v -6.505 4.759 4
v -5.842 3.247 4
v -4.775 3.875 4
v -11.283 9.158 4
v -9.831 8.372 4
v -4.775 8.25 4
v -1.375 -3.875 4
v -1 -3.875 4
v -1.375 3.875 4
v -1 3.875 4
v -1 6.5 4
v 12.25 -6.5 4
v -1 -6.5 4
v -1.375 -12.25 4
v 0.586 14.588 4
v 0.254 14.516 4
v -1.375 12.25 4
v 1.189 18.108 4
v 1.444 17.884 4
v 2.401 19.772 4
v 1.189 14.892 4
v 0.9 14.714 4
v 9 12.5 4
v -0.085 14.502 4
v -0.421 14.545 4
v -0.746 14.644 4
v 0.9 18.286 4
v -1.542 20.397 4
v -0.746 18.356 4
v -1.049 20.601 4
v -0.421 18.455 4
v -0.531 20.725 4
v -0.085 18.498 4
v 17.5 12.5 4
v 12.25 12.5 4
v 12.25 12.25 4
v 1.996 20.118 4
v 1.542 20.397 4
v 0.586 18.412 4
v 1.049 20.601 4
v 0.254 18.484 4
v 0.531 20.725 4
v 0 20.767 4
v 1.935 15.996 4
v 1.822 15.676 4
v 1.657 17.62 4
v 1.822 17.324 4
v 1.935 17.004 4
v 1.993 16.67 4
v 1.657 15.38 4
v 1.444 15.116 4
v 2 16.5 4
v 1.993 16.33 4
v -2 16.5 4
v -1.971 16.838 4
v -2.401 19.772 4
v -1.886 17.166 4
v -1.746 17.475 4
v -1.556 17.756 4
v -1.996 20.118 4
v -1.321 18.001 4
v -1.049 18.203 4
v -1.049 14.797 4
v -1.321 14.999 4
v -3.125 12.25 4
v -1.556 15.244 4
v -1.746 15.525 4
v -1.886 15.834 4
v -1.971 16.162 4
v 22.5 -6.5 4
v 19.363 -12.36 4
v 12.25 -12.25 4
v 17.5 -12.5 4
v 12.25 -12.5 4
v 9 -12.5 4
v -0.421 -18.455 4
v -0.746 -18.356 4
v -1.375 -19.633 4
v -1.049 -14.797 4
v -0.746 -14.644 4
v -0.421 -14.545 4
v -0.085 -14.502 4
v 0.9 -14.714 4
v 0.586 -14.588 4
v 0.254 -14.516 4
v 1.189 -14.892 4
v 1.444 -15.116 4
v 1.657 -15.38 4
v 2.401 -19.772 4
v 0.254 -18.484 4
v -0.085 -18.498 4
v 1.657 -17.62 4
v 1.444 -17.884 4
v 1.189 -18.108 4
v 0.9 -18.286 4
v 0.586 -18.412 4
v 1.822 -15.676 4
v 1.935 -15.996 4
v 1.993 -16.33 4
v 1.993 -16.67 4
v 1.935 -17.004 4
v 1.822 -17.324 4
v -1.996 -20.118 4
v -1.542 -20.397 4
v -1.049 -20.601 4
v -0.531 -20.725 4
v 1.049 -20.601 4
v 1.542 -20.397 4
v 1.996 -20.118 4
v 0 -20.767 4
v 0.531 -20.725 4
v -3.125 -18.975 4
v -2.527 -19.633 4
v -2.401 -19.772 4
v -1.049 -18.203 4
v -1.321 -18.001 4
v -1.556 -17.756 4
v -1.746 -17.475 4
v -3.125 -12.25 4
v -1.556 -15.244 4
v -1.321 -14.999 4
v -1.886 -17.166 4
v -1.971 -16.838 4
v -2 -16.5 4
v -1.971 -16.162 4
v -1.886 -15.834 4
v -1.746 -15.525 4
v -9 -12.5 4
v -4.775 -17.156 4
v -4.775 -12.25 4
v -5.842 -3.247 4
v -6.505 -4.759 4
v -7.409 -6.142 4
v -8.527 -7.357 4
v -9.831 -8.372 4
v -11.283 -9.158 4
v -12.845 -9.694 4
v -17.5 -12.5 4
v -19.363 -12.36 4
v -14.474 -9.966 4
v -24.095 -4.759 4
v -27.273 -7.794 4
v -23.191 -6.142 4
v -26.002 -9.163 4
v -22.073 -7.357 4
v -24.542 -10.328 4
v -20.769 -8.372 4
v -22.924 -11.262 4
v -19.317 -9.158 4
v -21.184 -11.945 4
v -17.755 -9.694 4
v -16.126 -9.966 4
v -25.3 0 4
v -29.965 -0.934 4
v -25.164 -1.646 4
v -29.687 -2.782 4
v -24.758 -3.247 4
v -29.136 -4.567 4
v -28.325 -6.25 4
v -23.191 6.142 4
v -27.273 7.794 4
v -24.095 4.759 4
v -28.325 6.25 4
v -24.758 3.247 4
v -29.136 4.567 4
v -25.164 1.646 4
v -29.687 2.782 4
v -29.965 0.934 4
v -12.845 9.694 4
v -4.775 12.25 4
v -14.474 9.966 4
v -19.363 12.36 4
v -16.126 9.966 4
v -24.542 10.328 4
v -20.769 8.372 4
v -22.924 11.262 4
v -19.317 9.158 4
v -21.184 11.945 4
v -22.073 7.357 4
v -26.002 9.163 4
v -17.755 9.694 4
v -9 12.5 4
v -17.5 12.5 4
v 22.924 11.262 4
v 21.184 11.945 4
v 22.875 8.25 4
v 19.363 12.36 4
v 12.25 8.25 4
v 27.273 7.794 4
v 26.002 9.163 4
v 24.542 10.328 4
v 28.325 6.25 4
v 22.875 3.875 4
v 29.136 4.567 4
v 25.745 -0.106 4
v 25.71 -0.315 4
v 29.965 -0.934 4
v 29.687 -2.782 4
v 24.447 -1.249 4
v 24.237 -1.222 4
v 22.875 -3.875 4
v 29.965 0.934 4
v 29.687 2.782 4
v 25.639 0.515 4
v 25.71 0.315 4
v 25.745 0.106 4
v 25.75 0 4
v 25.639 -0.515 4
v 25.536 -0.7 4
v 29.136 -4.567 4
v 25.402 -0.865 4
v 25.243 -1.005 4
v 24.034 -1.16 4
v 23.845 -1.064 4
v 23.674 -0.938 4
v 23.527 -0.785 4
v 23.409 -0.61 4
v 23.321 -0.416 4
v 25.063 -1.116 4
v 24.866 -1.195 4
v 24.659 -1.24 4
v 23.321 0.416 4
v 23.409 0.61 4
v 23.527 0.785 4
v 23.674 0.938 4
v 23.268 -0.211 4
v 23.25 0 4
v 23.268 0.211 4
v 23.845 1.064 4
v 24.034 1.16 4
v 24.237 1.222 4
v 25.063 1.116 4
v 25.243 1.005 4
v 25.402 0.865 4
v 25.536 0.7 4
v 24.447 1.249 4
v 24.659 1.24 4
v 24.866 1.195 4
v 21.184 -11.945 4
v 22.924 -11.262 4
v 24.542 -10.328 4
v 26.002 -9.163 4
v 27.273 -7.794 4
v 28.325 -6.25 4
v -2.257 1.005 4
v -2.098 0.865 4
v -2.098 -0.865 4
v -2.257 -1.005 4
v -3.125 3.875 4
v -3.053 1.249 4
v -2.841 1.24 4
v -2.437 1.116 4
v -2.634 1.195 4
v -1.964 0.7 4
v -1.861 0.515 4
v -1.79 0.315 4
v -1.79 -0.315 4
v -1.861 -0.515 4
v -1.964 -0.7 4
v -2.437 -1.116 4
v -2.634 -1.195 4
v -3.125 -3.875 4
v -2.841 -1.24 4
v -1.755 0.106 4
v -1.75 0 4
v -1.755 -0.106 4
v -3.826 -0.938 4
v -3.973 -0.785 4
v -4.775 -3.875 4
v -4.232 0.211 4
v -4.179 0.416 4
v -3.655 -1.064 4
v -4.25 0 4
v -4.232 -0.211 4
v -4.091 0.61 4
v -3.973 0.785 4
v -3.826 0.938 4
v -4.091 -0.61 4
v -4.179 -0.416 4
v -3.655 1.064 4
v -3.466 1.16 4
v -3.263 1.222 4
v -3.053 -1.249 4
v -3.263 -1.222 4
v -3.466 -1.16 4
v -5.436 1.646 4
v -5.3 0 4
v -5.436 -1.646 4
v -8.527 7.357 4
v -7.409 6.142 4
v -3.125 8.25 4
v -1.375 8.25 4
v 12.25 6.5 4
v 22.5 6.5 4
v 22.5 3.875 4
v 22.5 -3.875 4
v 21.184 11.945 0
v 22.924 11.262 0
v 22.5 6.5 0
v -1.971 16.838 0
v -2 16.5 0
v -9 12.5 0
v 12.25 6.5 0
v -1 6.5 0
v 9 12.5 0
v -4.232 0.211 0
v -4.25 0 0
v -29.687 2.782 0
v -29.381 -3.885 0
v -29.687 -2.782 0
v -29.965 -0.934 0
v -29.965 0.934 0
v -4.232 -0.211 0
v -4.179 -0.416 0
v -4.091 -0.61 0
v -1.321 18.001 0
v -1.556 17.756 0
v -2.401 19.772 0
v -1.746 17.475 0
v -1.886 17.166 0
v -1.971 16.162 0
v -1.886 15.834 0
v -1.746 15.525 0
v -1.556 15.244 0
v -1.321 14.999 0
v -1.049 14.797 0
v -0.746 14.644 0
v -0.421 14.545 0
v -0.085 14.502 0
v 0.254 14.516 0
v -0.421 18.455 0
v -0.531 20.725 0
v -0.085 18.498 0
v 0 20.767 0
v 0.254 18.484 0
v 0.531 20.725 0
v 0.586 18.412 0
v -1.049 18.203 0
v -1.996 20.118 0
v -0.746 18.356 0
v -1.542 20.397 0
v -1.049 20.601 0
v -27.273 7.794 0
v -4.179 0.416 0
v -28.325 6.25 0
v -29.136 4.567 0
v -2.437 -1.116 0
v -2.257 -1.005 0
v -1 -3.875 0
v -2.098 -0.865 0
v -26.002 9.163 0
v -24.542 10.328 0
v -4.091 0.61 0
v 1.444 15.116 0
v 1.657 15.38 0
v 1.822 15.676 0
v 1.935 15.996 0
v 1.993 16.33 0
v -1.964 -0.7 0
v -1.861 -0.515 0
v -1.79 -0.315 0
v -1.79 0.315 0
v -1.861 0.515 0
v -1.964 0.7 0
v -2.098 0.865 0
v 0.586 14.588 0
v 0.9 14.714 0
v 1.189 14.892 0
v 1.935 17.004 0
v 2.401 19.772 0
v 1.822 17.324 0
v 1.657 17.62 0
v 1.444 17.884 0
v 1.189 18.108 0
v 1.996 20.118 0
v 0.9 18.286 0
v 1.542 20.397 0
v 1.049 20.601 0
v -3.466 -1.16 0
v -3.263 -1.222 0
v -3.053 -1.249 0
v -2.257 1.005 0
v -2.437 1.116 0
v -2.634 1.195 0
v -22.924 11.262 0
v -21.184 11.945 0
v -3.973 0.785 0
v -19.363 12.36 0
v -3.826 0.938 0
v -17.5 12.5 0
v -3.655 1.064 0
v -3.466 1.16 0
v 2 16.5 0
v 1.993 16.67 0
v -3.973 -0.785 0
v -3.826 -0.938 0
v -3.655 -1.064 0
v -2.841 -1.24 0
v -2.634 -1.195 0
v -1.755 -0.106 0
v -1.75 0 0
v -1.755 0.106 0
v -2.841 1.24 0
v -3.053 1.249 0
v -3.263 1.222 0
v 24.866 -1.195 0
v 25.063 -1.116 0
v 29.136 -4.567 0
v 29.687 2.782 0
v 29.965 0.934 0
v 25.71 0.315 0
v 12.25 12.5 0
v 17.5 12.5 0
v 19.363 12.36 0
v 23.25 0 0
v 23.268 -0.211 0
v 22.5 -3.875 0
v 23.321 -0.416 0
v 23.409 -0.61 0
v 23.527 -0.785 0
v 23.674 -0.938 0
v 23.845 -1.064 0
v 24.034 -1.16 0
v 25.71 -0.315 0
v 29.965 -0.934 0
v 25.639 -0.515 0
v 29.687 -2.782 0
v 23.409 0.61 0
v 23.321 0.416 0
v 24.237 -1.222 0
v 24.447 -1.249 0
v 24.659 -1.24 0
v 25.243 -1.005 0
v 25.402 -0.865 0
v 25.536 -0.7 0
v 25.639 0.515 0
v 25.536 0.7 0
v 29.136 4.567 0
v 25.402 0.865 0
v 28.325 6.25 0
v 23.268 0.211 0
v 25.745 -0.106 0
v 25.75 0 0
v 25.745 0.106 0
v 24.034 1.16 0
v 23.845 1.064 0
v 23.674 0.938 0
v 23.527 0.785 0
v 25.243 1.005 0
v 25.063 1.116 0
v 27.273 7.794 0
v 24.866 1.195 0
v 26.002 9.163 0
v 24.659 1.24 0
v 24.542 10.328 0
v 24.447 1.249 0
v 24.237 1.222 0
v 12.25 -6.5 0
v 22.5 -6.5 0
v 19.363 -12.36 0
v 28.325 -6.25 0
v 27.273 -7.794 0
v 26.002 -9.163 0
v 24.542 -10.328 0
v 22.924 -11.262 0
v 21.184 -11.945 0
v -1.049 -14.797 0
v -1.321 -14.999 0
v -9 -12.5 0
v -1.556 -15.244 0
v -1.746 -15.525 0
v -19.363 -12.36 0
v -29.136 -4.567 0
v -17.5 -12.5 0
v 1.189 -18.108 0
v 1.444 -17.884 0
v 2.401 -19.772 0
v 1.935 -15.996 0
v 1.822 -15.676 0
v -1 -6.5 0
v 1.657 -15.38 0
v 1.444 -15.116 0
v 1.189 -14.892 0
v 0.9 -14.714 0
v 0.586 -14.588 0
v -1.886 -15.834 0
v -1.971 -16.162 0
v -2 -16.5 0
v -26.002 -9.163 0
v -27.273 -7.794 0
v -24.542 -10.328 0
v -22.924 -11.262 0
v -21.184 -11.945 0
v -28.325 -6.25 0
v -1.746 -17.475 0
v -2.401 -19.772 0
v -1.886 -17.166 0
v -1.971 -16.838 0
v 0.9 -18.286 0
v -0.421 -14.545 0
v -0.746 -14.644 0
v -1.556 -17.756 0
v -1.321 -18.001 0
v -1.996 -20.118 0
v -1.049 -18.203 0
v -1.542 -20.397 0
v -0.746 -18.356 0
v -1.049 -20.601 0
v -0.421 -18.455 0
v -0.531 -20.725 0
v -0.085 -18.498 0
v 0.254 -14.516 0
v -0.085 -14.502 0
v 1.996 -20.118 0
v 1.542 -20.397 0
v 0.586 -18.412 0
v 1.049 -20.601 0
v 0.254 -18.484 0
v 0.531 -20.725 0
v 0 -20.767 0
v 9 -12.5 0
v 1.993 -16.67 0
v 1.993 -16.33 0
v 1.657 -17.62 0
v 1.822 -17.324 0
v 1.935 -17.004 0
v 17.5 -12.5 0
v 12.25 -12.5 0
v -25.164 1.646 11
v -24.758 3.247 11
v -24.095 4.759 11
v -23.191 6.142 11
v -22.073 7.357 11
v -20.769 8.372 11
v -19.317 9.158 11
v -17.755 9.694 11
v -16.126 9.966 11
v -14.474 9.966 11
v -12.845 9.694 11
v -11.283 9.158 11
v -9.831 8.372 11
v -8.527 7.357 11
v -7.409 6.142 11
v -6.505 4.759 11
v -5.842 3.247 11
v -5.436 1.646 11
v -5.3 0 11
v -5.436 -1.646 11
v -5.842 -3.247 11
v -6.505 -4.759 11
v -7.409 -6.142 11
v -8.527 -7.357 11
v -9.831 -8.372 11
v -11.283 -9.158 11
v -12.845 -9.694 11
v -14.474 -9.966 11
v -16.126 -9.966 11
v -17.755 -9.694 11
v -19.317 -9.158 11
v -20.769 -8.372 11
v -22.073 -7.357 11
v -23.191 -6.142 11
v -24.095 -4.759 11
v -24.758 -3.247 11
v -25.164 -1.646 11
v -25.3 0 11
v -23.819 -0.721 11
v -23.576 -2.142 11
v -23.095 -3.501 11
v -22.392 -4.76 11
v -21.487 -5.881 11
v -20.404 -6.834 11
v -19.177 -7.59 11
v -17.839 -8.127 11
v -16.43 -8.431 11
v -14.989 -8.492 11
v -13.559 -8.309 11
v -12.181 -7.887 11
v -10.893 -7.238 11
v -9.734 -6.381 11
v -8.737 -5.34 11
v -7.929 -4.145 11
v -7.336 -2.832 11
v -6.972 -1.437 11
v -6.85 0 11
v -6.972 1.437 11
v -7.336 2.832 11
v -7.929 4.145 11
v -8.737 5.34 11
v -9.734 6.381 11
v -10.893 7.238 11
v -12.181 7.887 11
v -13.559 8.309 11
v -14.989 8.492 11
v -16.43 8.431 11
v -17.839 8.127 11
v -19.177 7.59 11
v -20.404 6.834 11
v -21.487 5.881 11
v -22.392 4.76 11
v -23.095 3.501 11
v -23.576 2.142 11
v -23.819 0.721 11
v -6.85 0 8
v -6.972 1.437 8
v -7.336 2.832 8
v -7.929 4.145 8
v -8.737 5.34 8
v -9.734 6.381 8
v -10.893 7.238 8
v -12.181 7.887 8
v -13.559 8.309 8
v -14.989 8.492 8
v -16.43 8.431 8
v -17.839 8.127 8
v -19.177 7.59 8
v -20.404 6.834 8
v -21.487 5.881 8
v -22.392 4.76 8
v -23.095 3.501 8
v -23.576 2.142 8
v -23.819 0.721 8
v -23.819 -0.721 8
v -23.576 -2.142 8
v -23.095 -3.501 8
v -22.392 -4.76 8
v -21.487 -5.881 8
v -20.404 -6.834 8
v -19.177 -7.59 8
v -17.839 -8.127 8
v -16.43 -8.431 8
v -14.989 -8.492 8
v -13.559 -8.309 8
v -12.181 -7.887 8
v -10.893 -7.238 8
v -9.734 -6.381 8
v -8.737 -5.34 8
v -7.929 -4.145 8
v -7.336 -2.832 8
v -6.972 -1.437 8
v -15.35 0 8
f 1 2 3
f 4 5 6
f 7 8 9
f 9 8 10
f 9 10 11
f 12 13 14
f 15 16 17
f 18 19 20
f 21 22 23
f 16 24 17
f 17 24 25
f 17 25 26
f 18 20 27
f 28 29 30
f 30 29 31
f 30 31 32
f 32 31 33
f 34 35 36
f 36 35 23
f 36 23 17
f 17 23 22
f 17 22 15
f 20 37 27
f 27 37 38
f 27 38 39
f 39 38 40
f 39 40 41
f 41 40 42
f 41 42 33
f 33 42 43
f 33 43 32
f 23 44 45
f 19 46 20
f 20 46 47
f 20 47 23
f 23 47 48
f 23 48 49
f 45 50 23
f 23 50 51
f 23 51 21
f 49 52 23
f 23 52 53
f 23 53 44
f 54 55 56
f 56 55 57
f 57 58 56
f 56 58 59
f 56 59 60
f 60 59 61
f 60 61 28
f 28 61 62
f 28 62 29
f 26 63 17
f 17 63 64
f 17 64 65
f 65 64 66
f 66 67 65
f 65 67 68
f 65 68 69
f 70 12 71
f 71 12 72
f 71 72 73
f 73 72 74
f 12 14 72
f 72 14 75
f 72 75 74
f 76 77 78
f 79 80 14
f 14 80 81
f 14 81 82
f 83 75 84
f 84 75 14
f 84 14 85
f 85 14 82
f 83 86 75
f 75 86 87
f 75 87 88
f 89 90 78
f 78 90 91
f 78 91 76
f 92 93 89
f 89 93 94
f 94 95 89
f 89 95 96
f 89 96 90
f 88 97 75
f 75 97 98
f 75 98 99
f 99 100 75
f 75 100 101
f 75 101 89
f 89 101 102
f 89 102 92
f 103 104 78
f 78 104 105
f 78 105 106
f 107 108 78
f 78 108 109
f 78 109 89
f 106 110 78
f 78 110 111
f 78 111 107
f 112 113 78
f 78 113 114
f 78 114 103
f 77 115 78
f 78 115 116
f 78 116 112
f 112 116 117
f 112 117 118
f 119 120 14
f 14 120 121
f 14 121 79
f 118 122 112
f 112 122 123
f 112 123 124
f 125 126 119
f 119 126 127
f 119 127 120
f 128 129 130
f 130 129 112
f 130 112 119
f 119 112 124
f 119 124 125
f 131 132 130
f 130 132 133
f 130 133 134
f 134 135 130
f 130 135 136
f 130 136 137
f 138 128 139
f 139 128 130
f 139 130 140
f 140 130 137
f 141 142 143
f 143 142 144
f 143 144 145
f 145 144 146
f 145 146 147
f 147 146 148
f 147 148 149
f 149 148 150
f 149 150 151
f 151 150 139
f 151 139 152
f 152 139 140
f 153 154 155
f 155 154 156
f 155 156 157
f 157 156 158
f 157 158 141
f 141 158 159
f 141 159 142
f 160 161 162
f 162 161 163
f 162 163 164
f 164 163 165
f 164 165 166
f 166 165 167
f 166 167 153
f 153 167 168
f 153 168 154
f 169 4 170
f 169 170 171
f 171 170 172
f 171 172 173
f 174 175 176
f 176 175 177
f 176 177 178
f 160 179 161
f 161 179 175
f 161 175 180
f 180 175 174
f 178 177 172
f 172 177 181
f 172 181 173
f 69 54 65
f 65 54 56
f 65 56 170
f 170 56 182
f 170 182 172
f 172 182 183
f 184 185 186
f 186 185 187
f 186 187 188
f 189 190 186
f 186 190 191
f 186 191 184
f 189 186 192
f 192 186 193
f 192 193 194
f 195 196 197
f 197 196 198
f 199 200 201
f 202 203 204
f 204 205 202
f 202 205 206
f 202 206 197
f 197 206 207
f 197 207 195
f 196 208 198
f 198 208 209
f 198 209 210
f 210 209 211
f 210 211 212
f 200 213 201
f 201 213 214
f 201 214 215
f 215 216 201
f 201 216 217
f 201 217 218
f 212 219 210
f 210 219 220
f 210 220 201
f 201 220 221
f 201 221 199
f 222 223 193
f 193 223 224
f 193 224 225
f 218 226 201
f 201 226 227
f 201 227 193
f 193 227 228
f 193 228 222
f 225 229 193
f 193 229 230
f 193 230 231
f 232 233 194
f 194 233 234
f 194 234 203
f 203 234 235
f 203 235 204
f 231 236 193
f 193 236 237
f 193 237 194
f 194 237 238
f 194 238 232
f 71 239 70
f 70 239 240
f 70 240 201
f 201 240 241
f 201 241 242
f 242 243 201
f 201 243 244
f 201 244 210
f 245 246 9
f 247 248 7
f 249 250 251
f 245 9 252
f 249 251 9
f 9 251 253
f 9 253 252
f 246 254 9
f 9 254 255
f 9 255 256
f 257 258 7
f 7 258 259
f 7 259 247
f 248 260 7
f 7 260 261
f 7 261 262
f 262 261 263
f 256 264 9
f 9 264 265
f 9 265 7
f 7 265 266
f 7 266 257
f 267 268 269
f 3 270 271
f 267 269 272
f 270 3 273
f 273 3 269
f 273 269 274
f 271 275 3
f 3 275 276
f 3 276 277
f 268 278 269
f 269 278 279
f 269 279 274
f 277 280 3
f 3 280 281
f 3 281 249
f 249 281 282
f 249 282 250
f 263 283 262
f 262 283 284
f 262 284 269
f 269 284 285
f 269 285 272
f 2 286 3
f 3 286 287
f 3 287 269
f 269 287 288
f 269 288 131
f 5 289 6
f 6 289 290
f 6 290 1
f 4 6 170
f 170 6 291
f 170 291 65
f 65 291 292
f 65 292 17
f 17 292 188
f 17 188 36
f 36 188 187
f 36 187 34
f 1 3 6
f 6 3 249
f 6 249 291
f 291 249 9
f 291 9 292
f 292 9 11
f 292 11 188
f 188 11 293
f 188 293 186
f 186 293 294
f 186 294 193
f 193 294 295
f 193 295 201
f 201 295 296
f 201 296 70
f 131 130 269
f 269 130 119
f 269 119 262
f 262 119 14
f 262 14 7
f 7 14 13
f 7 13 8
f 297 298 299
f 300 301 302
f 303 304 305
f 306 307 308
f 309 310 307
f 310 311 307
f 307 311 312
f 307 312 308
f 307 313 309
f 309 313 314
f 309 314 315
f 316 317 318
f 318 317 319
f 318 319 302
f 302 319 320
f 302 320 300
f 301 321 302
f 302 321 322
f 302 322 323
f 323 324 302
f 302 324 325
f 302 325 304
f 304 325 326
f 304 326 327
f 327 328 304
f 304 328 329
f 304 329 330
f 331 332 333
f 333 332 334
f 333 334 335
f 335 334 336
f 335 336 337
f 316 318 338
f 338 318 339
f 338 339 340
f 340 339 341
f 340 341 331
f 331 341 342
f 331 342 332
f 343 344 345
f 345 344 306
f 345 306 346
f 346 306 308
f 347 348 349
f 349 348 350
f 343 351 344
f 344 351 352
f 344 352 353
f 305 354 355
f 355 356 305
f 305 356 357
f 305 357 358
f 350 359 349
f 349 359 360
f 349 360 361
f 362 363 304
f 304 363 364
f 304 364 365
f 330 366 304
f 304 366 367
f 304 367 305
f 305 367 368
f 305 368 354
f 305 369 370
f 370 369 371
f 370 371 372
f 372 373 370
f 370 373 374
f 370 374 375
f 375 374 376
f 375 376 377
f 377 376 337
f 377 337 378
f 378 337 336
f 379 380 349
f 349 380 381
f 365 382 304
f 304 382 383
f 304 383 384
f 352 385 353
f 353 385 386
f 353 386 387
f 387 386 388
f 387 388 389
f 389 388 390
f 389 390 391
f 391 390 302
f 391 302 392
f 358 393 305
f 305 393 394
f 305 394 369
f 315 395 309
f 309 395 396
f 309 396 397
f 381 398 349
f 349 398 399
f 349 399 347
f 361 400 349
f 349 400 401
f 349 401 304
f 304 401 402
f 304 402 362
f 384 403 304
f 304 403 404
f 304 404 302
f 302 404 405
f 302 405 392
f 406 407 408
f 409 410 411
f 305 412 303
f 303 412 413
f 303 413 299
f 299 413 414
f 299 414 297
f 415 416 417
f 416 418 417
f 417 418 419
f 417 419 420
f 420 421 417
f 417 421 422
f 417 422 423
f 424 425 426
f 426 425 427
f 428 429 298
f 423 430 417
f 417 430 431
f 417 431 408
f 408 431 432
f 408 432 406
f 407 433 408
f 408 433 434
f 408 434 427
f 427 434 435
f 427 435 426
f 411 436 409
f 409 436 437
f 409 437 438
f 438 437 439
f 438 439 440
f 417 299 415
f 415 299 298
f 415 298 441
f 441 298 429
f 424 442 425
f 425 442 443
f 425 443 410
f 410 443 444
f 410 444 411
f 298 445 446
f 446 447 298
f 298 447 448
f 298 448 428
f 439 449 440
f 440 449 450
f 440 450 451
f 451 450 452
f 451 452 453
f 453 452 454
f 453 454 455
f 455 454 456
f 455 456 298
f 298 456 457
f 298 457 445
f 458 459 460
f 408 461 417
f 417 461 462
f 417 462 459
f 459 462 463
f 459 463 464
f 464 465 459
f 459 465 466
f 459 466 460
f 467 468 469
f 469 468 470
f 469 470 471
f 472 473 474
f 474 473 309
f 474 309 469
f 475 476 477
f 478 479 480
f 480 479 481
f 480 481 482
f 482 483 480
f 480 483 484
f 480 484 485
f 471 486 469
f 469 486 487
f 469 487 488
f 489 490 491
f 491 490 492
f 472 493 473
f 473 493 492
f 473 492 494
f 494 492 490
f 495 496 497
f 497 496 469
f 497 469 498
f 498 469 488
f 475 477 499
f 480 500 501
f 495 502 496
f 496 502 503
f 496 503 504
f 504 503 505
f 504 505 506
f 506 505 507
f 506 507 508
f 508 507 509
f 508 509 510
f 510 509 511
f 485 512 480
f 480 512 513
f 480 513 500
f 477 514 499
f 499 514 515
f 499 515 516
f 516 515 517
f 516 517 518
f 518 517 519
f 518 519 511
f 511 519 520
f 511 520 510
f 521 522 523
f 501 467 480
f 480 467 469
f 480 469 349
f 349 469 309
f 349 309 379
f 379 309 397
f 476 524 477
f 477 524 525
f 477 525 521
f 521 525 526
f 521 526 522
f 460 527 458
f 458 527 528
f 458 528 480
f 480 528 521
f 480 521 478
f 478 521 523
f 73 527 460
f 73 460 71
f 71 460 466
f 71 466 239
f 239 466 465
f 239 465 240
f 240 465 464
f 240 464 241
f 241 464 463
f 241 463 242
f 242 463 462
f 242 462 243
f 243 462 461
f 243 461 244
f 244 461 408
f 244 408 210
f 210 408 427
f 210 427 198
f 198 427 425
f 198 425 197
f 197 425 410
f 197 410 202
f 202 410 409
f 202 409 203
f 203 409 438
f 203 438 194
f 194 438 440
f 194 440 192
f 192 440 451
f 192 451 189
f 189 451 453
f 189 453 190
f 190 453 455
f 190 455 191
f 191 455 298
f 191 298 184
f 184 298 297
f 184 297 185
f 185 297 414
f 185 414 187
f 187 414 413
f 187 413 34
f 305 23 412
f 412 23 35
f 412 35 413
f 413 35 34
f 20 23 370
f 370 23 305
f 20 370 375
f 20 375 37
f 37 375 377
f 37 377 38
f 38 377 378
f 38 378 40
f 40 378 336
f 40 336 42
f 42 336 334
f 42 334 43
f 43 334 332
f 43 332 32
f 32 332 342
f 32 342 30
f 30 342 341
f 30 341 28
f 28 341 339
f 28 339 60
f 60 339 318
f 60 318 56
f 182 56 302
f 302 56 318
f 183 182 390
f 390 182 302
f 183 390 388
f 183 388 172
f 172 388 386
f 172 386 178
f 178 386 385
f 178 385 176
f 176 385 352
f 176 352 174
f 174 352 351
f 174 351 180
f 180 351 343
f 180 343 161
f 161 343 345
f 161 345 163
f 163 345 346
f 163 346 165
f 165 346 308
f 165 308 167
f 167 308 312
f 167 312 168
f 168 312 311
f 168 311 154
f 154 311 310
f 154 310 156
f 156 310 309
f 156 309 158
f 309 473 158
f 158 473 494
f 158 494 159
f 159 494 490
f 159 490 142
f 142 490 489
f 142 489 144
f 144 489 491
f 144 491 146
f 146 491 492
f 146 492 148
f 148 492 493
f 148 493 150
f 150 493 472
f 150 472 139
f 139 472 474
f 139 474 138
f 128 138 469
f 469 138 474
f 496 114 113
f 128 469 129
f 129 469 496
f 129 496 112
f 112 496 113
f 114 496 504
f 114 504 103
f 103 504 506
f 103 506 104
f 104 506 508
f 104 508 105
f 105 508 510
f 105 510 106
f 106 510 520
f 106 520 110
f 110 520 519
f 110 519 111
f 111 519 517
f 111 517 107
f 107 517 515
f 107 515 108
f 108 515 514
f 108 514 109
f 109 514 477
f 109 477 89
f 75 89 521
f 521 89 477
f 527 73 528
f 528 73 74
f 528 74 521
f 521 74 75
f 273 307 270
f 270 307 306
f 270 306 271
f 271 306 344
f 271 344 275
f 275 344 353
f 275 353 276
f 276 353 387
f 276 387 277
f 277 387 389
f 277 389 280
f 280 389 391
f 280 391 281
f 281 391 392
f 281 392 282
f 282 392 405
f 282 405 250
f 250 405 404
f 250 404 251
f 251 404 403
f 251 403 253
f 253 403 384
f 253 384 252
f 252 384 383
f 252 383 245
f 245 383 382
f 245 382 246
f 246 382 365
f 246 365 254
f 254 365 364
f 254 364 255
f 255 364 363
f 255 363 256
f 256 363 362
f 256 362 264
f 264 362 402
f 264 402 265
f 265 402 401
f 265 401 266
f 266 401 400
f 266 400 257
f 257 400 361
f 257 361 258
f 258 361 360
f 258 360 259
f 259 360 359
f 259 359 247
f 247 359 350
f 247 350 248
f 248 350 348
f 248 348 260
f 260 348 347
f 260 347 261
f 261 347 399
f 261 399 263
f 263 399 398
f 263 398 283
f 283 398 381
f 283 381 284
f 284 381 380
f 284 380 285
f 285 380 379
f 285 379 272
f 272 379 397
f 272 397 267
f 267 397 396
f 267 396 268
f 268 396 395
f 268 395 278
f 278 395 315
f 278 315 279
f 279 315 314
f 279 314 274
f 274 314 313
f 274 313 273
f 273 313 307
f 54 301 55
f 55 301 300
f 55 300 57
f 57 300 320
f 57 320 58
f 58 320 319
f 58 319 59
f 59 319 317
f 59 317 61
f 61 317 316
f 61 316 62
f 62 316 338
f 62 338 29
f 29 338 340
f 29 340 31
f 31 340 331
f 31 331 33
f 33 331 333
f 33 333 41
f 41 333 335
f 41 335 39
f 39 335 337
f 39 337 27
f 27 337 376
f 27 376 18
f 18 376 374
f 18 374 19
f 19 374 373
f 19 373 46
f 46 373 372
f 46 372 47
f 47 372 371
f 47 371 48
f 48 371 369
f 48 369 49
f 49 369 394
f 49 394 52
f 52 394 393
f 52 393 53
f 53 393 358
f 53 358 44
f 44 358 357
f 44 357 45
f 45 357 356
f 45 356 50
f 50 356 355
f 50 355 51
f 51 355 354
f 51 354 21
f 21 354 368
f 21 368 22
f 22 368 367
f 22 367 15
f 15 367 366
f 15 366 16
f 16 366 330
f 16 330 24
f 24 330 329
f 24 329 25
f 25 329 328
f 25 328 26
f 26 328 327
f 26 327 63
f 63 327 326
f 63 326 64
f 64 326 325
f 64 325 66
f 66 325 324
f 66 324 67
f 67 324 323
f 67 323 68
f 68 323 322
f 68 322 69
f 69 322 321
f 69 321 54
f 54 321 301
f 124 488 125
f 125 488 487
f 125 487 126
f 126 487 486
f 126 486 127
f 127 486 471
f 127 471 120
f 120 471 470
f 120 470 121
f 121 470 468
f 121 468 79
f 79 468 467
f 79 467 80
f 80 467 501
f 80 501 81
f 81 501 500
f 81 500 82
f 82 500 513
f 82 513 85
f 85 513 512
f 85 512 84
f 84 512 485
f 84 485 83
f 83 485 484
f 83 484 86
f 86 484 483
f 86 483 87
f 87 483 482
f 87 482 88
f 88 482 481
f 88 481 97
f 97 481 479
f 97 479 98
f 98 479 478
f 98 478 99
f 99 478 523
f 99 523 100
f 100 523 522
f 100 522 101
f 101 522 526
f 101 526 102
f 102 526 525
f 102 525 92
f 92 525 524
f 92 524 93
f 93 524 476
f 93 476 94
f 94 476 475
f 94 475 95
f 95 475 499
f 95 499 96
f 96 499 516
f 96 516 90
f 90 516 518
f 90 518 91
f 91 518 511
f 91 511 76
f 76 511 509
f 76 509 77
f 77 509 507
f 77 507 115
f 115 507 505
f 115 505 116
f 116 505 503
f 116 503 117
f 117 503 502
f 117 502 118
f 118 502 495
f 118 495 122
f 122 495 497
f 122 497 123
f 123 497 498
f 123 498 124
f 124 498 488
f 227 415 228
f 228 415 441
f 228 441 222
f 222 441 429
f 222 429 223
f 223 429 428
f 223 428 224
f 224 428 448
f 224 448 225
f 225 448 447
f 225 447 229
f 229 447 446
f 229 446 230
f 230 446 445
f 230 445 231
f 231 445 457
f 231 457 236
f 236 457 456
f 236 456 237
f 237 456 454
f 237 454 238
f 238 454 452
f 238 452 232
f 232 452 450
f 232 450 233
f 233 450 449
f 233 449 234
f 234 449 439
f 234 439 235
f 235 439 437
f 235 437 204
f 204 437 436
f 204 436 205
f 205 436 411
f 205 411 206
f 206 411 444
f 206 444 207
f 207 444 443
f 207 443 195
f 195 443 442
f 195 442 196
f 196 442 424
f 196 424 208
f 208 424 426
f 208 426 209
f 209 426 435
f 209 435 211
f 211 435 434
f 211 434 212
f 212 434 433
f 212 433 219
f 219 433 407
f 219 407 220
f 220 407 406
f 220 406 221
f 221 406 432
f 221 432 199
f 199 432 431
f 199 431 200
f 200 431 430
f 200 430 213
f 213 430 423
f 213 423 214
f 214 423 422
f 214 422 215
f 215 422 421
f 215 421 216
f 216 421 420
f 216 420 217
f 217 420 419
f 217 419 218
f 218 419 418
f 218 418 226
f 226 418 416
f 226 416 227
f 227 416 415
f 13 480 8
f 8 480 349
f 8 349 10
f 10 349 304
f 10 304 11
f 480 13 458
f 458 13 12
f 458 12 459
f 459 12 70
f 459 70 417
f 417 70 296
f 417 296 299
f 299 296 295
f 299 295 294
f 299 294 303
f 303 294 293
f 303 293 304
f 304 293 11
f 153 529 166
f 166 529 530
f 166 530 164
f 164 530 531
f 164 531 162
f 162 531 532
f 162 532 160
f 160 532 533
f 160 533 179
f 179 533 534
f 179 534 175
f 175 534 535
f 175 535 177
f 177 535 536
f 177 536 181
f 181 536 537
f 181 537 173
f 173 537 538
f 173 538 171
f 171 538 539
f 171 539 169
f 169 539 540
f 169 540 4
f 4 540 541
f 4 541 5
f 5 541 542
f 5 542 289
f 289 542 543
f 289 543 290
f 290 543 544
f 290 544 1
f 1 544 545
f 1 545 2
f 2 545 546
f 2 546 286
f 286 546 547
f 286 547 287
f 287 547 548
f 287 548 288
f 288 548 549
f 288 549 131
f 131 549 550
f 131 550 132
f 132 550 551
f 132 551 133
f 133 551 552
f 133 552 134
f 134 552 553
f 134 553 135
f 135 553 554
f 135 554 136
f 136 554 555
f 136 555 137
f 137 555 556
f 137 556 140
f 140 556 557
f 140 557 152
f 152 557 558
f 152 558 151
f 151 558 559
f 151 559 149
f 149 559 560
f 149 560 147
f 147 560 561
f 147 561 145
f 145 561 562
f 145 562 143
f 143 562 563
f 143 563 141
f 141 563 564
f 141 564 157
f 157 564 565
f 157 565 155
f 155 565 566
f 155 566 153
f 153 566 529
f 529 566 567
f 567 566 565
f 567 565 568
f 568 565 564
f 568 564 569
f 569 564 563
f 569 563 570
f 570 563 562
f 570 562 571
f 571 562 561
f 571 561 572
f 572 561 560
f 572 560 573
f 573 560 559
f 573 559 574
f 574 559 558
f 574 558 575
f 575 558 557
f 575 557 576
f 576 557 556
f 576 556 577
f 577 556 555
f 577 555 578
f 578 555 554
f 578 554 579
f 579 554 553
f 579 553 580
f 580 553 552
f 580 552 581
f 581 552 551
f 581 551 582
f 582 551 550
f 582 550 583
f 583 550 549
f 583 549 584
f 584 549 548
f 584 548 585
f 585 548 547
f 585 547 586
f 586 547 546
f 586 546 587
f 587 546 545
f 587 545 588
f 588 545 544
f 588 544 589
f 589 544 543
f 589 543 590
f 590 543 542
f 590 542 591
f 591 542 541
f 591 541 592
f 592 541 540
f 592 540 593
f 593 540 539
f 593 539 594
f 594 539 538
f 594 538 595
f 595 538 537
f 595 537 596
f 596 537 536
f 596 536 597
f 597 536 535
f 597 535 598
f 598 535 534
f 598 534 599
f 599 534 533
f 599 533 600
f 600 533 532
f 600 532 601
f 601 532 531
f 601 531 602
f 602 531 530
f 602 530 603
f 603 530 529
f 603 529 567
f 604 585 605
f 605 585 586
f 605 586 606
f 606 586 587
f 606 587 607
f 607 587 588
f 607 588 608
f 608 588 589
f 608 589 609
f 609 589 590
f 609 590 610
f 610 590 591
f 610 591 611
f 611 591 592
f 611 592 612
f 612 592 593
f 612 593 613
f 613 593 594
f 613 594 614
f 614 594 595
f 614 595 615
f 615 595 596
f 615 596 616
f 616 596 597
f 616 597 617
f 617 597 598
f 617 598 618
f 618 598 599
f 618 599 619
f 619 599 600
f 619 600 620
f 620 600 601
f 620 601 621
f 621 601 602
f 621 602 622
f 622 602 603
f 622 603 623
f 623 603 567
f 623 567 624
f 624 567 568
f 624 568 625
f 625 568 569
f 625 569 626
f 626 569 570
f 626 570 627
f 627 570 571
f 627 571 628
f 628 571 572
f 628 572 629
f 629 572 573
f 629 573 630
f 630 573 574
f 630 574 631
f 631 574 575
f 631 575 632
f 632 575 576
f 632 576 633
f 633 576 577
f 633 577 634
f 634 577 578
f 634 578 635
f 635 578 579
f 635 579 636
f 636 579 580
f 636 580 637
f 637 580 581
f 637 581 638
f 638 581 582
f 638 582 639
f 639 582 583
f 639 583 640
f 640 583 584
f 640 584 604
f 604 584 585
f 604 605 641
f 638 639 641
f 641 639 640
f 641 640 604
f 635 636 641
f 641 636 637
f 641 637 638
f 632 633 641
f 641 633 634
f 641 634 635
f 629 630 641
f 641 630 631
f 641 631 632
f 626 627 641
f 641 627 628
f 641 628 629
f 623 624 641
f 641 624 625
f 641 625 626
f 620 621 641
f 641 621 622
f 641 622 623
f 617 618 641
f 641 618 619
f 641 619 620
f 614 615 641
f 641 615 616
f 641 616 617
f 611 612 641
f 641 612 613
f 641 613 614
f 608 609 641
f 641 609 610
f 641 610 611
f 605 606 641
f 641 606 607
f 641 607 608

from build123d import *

# Parameters (mm, degrees)
SKETCH1_R           = 2
SKETCH1_R_2         = 1.25
SKETCH1_W           = 23.5
SKETCH1_H           = 13
BOSS_EXTRUDE1_DEPTH = 4
SKETCH3_R           = 10
BOSS_EXTRUDE2_DEPTH = 7
SKETCH4_R           = 8.5
CUT_EXTRUDE1_DEPTH  = 3


with BuildPart() as part:
    # Sketch1 → Boss-Extrude1 (new body)
    with BuildSketch(Plane.XY):
        with BuildLine():
            Line((-9, 12.5), (-2.401010284, 19.772380391))
            ThreePointArc((-2.401010284, 19.772380391), (0, 20.766911414), (2.401010284, 19.772380391))
            Line((2.401010284, 19.772380391), (9, 12.5))
            Line((9, 12.5), (17.5, 12.5))
            ThreePointArc((17.5, 12.5), (30, 0), (17.5, -12.5))
            Line((17.5, -12.5), (9, -12.5))
            Line((9, -12.5), (2.401010284, -19.772380391))
            ThreePointArc((2.401010284, -19.772380391), (0, -20.766911414), (-2.401010284, -19.772380391))
            Line((-2.401010284, -19.772380391), (-9, -12.5))
            Line((-9, -12.5), (-17.5, -12.5))
            ThreePointArc((-17.5, -12.5), (-30, 0), (-17.5, 12.5))
            Line((-17.5, 12.5), (-9, 12.5))
        make_face()
        with Locations((0, 16.5)):
            Circle(SKETCH1_R, mode=Mode.SUBTRACT)
        with Locations(Location((0, -16.5, 0), (0, 0, 180))):
            Circle(SKETCH1_R, mode=Mode.SUBTRACT)
        with Locations((-3, 0)):
            Circle(SKETCH1_R_2, mode=Mode.SUBTRACT)
        with Locations((24.5, 0)):
            Circle(SKETCH1_R_2, mode=Mode.SUBTRACT)
        with Locations((10.75, 0)):
            Rectangle(SKETCH1_W, SKETCH1_H, mode=Mode.SUBTRACT)
    extrude(amount=BOSS_EXTRUDE1_DEPTH)

    # Sketch3 → Boss-Extrude2 (add)
    with BuildSketch(Plane.XY.offset(4)):
        with Locations((-15.3, 0)):
            Circle(SKETCH3_R)
    extrude(amount=BOSS_EXTRUDE2_DEPTH)

    # Sketch4 → Cut-Extrude1 (cut)
    with BuildSketch(Plane.XY.offset(11)):
        with Locations((-15.35, 0)):
            Circle(SKETCH4_R)
    extrude(amount=-CUT_EXTRUDE1_DEPTH, mode=Mode.SUBTRACT)


solid = part.part
